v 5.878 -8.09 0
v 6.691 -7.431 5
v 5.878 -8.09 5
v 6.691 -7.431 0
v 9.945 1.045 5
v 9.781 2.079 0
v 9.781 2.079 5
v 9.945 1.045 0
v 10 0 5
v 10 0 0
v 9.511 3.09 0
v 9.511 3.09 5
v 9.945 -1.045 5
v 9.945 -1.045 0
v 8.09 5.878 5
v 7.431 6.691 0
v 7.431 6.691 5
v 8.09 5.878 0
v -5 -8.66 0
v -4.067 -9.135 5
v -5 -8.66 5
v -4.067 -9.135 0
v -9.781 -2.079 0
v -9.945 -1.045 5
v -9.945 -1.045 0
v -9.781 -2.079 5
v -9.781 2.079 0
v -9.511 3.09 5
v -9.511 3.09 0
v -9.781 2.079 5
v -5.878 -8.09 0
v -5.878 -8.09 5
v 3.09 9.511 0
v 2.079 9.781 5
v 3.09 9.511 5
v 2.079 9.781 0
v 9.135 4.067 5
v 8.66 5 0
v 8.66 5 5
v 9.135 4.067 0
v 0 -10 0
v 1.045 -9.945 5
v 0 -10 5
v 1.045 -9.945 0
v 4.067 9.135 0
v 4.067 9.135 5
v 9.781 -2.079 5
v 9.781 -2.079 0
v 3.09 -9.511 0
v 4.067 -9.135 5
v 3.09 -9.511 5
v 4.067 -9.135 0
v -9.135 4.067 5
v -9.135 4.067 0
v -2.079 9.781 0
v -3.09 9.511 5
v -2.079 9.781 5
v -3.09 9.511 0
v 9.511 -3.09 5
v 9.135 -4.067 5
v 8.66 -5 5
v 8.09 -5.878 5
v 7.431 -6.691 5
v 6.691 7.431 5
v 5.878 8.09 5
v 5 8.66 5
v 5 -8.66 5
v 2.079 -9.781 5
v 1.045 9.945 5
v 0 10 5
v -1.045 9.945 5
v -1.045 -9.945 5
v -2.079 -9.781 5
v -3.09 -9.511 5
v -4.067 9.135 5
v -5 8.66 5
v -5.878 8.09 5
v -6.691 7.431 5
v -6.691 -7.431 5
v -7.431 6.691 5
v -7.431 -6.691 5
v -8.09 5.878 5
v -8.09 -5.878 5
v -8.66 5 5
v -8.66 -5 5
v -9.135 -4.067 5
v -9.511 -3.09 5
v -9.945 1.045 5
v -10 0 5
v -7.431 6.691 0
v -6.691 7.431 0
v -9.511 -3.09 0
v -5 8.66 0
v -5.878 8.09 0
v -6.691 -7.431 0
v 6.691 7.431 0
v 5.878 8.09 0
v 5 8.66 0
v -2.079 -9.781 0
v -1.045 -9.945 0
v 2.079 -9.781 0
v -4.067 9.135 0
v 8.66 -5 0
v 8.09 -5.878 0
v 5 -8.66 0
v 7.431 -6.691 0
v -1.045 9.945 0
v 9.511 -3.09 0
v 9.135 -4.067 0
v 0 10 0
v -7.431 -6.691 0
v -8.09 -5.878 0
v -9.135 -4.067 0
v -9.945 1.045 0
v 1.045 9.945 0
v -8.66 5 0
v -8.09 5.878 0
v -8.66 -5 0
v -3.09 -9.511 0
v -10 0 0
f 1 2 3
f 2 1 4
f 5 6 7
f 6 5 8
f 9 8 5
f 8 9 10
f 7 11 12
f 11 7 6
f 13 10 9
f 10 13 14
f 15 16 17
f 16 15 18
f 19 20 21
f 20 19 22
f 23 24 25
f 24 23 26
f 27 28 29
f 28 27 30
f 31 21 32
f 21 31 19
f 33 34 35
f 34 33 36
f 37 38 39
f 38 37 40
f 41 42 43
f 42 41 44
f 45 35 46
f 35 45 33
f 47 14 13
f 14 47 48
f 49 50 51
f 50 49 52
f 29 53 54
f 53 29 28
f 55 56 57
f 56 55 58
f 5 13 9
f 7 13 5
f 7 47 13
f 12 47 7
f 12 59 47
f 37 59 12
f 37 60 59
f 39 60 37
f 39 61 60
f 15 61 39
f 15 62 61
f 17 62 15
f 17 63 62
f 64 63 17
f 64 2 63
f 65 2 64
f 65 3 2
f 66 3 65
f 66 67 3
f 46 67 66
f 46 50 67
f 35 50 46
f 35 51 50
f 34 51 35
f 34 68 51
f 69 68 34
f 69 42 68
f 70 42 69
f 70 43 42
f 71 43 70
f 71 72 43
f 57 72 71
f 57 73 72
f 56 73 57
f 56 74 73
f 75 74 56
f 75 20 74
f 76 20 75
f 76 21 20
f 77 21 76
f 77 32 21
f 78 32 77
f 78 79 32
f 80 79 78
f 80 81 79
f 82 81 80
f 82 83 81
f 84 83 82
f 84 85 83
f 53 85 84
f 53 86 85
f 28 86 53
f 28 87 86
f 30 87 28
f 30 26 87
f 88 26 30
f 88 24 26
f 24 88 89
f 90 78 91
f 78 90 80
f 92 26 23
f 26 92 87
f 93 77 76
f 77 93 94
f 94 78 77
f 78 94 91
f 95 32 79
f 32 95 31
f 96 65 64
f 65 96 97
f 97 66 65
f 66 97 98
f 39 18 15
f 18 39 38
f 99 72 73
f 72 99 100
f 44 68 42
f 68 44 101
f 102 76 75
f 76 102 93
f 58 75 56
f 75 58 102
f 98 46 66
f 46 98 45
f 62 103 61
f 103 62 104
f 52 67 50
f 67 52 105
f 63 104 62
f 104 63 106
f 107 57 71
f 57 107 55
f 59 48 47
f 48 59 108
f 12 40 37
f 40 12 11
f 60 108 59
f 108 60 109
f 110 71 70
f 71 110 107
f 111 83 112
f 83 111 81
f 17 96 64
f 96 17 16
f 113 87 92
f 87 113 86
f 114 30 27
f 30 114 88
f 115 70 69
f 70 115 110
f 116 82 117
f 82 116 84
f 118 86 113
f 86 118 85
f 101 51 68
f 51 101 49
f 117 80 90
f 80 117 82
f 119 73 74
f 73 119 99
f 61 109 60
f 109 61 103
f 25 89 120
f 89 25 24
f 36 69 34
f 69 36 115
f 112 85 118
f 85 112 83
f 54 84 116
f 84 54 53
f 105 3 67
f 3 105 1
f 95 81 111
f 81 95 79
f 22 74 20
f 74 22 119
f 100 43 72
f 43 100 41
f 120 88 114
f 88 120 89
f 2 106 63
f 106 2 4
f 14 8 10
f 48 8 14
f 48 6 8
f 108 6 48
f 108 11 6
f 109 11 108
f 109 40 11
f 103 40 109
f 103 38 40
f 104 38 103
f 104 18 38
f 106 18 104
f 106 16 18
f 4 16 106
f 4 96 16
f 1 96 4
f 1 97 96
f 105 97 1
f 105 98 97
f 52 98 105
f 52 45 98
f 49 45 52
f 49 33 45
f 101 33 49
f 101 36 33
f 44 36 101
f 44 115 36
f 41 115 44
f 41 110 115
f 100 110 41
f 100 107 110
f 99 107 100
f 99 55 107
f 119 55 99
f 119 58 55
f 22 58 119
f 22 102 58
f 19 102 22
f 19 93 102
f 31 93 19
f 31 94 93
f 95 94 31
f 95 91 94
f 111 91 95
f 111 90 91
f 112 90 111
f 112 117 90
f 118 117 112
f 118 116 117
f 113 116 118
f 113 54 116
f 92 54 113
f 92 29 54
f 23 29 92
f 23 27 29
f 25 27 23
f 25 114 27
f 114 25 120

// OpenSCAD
// Ripple parameters
radius = 10;
height = 5;
frequency = 1;
amplitude = 1;

module ripple(radius, height, frequency, amplitude) {
  difference() {
    cylinder(h = height, r = radius, $fn = 60);
    translate([0, 0, height/2])
      linear_extrude(height = height/2)
        rotate([0,0,45])
          scale([1,1,1])
            cube([radius*2, radius*2, height]);
  }
}

ripple(radius, height, frequency, amplitude);
